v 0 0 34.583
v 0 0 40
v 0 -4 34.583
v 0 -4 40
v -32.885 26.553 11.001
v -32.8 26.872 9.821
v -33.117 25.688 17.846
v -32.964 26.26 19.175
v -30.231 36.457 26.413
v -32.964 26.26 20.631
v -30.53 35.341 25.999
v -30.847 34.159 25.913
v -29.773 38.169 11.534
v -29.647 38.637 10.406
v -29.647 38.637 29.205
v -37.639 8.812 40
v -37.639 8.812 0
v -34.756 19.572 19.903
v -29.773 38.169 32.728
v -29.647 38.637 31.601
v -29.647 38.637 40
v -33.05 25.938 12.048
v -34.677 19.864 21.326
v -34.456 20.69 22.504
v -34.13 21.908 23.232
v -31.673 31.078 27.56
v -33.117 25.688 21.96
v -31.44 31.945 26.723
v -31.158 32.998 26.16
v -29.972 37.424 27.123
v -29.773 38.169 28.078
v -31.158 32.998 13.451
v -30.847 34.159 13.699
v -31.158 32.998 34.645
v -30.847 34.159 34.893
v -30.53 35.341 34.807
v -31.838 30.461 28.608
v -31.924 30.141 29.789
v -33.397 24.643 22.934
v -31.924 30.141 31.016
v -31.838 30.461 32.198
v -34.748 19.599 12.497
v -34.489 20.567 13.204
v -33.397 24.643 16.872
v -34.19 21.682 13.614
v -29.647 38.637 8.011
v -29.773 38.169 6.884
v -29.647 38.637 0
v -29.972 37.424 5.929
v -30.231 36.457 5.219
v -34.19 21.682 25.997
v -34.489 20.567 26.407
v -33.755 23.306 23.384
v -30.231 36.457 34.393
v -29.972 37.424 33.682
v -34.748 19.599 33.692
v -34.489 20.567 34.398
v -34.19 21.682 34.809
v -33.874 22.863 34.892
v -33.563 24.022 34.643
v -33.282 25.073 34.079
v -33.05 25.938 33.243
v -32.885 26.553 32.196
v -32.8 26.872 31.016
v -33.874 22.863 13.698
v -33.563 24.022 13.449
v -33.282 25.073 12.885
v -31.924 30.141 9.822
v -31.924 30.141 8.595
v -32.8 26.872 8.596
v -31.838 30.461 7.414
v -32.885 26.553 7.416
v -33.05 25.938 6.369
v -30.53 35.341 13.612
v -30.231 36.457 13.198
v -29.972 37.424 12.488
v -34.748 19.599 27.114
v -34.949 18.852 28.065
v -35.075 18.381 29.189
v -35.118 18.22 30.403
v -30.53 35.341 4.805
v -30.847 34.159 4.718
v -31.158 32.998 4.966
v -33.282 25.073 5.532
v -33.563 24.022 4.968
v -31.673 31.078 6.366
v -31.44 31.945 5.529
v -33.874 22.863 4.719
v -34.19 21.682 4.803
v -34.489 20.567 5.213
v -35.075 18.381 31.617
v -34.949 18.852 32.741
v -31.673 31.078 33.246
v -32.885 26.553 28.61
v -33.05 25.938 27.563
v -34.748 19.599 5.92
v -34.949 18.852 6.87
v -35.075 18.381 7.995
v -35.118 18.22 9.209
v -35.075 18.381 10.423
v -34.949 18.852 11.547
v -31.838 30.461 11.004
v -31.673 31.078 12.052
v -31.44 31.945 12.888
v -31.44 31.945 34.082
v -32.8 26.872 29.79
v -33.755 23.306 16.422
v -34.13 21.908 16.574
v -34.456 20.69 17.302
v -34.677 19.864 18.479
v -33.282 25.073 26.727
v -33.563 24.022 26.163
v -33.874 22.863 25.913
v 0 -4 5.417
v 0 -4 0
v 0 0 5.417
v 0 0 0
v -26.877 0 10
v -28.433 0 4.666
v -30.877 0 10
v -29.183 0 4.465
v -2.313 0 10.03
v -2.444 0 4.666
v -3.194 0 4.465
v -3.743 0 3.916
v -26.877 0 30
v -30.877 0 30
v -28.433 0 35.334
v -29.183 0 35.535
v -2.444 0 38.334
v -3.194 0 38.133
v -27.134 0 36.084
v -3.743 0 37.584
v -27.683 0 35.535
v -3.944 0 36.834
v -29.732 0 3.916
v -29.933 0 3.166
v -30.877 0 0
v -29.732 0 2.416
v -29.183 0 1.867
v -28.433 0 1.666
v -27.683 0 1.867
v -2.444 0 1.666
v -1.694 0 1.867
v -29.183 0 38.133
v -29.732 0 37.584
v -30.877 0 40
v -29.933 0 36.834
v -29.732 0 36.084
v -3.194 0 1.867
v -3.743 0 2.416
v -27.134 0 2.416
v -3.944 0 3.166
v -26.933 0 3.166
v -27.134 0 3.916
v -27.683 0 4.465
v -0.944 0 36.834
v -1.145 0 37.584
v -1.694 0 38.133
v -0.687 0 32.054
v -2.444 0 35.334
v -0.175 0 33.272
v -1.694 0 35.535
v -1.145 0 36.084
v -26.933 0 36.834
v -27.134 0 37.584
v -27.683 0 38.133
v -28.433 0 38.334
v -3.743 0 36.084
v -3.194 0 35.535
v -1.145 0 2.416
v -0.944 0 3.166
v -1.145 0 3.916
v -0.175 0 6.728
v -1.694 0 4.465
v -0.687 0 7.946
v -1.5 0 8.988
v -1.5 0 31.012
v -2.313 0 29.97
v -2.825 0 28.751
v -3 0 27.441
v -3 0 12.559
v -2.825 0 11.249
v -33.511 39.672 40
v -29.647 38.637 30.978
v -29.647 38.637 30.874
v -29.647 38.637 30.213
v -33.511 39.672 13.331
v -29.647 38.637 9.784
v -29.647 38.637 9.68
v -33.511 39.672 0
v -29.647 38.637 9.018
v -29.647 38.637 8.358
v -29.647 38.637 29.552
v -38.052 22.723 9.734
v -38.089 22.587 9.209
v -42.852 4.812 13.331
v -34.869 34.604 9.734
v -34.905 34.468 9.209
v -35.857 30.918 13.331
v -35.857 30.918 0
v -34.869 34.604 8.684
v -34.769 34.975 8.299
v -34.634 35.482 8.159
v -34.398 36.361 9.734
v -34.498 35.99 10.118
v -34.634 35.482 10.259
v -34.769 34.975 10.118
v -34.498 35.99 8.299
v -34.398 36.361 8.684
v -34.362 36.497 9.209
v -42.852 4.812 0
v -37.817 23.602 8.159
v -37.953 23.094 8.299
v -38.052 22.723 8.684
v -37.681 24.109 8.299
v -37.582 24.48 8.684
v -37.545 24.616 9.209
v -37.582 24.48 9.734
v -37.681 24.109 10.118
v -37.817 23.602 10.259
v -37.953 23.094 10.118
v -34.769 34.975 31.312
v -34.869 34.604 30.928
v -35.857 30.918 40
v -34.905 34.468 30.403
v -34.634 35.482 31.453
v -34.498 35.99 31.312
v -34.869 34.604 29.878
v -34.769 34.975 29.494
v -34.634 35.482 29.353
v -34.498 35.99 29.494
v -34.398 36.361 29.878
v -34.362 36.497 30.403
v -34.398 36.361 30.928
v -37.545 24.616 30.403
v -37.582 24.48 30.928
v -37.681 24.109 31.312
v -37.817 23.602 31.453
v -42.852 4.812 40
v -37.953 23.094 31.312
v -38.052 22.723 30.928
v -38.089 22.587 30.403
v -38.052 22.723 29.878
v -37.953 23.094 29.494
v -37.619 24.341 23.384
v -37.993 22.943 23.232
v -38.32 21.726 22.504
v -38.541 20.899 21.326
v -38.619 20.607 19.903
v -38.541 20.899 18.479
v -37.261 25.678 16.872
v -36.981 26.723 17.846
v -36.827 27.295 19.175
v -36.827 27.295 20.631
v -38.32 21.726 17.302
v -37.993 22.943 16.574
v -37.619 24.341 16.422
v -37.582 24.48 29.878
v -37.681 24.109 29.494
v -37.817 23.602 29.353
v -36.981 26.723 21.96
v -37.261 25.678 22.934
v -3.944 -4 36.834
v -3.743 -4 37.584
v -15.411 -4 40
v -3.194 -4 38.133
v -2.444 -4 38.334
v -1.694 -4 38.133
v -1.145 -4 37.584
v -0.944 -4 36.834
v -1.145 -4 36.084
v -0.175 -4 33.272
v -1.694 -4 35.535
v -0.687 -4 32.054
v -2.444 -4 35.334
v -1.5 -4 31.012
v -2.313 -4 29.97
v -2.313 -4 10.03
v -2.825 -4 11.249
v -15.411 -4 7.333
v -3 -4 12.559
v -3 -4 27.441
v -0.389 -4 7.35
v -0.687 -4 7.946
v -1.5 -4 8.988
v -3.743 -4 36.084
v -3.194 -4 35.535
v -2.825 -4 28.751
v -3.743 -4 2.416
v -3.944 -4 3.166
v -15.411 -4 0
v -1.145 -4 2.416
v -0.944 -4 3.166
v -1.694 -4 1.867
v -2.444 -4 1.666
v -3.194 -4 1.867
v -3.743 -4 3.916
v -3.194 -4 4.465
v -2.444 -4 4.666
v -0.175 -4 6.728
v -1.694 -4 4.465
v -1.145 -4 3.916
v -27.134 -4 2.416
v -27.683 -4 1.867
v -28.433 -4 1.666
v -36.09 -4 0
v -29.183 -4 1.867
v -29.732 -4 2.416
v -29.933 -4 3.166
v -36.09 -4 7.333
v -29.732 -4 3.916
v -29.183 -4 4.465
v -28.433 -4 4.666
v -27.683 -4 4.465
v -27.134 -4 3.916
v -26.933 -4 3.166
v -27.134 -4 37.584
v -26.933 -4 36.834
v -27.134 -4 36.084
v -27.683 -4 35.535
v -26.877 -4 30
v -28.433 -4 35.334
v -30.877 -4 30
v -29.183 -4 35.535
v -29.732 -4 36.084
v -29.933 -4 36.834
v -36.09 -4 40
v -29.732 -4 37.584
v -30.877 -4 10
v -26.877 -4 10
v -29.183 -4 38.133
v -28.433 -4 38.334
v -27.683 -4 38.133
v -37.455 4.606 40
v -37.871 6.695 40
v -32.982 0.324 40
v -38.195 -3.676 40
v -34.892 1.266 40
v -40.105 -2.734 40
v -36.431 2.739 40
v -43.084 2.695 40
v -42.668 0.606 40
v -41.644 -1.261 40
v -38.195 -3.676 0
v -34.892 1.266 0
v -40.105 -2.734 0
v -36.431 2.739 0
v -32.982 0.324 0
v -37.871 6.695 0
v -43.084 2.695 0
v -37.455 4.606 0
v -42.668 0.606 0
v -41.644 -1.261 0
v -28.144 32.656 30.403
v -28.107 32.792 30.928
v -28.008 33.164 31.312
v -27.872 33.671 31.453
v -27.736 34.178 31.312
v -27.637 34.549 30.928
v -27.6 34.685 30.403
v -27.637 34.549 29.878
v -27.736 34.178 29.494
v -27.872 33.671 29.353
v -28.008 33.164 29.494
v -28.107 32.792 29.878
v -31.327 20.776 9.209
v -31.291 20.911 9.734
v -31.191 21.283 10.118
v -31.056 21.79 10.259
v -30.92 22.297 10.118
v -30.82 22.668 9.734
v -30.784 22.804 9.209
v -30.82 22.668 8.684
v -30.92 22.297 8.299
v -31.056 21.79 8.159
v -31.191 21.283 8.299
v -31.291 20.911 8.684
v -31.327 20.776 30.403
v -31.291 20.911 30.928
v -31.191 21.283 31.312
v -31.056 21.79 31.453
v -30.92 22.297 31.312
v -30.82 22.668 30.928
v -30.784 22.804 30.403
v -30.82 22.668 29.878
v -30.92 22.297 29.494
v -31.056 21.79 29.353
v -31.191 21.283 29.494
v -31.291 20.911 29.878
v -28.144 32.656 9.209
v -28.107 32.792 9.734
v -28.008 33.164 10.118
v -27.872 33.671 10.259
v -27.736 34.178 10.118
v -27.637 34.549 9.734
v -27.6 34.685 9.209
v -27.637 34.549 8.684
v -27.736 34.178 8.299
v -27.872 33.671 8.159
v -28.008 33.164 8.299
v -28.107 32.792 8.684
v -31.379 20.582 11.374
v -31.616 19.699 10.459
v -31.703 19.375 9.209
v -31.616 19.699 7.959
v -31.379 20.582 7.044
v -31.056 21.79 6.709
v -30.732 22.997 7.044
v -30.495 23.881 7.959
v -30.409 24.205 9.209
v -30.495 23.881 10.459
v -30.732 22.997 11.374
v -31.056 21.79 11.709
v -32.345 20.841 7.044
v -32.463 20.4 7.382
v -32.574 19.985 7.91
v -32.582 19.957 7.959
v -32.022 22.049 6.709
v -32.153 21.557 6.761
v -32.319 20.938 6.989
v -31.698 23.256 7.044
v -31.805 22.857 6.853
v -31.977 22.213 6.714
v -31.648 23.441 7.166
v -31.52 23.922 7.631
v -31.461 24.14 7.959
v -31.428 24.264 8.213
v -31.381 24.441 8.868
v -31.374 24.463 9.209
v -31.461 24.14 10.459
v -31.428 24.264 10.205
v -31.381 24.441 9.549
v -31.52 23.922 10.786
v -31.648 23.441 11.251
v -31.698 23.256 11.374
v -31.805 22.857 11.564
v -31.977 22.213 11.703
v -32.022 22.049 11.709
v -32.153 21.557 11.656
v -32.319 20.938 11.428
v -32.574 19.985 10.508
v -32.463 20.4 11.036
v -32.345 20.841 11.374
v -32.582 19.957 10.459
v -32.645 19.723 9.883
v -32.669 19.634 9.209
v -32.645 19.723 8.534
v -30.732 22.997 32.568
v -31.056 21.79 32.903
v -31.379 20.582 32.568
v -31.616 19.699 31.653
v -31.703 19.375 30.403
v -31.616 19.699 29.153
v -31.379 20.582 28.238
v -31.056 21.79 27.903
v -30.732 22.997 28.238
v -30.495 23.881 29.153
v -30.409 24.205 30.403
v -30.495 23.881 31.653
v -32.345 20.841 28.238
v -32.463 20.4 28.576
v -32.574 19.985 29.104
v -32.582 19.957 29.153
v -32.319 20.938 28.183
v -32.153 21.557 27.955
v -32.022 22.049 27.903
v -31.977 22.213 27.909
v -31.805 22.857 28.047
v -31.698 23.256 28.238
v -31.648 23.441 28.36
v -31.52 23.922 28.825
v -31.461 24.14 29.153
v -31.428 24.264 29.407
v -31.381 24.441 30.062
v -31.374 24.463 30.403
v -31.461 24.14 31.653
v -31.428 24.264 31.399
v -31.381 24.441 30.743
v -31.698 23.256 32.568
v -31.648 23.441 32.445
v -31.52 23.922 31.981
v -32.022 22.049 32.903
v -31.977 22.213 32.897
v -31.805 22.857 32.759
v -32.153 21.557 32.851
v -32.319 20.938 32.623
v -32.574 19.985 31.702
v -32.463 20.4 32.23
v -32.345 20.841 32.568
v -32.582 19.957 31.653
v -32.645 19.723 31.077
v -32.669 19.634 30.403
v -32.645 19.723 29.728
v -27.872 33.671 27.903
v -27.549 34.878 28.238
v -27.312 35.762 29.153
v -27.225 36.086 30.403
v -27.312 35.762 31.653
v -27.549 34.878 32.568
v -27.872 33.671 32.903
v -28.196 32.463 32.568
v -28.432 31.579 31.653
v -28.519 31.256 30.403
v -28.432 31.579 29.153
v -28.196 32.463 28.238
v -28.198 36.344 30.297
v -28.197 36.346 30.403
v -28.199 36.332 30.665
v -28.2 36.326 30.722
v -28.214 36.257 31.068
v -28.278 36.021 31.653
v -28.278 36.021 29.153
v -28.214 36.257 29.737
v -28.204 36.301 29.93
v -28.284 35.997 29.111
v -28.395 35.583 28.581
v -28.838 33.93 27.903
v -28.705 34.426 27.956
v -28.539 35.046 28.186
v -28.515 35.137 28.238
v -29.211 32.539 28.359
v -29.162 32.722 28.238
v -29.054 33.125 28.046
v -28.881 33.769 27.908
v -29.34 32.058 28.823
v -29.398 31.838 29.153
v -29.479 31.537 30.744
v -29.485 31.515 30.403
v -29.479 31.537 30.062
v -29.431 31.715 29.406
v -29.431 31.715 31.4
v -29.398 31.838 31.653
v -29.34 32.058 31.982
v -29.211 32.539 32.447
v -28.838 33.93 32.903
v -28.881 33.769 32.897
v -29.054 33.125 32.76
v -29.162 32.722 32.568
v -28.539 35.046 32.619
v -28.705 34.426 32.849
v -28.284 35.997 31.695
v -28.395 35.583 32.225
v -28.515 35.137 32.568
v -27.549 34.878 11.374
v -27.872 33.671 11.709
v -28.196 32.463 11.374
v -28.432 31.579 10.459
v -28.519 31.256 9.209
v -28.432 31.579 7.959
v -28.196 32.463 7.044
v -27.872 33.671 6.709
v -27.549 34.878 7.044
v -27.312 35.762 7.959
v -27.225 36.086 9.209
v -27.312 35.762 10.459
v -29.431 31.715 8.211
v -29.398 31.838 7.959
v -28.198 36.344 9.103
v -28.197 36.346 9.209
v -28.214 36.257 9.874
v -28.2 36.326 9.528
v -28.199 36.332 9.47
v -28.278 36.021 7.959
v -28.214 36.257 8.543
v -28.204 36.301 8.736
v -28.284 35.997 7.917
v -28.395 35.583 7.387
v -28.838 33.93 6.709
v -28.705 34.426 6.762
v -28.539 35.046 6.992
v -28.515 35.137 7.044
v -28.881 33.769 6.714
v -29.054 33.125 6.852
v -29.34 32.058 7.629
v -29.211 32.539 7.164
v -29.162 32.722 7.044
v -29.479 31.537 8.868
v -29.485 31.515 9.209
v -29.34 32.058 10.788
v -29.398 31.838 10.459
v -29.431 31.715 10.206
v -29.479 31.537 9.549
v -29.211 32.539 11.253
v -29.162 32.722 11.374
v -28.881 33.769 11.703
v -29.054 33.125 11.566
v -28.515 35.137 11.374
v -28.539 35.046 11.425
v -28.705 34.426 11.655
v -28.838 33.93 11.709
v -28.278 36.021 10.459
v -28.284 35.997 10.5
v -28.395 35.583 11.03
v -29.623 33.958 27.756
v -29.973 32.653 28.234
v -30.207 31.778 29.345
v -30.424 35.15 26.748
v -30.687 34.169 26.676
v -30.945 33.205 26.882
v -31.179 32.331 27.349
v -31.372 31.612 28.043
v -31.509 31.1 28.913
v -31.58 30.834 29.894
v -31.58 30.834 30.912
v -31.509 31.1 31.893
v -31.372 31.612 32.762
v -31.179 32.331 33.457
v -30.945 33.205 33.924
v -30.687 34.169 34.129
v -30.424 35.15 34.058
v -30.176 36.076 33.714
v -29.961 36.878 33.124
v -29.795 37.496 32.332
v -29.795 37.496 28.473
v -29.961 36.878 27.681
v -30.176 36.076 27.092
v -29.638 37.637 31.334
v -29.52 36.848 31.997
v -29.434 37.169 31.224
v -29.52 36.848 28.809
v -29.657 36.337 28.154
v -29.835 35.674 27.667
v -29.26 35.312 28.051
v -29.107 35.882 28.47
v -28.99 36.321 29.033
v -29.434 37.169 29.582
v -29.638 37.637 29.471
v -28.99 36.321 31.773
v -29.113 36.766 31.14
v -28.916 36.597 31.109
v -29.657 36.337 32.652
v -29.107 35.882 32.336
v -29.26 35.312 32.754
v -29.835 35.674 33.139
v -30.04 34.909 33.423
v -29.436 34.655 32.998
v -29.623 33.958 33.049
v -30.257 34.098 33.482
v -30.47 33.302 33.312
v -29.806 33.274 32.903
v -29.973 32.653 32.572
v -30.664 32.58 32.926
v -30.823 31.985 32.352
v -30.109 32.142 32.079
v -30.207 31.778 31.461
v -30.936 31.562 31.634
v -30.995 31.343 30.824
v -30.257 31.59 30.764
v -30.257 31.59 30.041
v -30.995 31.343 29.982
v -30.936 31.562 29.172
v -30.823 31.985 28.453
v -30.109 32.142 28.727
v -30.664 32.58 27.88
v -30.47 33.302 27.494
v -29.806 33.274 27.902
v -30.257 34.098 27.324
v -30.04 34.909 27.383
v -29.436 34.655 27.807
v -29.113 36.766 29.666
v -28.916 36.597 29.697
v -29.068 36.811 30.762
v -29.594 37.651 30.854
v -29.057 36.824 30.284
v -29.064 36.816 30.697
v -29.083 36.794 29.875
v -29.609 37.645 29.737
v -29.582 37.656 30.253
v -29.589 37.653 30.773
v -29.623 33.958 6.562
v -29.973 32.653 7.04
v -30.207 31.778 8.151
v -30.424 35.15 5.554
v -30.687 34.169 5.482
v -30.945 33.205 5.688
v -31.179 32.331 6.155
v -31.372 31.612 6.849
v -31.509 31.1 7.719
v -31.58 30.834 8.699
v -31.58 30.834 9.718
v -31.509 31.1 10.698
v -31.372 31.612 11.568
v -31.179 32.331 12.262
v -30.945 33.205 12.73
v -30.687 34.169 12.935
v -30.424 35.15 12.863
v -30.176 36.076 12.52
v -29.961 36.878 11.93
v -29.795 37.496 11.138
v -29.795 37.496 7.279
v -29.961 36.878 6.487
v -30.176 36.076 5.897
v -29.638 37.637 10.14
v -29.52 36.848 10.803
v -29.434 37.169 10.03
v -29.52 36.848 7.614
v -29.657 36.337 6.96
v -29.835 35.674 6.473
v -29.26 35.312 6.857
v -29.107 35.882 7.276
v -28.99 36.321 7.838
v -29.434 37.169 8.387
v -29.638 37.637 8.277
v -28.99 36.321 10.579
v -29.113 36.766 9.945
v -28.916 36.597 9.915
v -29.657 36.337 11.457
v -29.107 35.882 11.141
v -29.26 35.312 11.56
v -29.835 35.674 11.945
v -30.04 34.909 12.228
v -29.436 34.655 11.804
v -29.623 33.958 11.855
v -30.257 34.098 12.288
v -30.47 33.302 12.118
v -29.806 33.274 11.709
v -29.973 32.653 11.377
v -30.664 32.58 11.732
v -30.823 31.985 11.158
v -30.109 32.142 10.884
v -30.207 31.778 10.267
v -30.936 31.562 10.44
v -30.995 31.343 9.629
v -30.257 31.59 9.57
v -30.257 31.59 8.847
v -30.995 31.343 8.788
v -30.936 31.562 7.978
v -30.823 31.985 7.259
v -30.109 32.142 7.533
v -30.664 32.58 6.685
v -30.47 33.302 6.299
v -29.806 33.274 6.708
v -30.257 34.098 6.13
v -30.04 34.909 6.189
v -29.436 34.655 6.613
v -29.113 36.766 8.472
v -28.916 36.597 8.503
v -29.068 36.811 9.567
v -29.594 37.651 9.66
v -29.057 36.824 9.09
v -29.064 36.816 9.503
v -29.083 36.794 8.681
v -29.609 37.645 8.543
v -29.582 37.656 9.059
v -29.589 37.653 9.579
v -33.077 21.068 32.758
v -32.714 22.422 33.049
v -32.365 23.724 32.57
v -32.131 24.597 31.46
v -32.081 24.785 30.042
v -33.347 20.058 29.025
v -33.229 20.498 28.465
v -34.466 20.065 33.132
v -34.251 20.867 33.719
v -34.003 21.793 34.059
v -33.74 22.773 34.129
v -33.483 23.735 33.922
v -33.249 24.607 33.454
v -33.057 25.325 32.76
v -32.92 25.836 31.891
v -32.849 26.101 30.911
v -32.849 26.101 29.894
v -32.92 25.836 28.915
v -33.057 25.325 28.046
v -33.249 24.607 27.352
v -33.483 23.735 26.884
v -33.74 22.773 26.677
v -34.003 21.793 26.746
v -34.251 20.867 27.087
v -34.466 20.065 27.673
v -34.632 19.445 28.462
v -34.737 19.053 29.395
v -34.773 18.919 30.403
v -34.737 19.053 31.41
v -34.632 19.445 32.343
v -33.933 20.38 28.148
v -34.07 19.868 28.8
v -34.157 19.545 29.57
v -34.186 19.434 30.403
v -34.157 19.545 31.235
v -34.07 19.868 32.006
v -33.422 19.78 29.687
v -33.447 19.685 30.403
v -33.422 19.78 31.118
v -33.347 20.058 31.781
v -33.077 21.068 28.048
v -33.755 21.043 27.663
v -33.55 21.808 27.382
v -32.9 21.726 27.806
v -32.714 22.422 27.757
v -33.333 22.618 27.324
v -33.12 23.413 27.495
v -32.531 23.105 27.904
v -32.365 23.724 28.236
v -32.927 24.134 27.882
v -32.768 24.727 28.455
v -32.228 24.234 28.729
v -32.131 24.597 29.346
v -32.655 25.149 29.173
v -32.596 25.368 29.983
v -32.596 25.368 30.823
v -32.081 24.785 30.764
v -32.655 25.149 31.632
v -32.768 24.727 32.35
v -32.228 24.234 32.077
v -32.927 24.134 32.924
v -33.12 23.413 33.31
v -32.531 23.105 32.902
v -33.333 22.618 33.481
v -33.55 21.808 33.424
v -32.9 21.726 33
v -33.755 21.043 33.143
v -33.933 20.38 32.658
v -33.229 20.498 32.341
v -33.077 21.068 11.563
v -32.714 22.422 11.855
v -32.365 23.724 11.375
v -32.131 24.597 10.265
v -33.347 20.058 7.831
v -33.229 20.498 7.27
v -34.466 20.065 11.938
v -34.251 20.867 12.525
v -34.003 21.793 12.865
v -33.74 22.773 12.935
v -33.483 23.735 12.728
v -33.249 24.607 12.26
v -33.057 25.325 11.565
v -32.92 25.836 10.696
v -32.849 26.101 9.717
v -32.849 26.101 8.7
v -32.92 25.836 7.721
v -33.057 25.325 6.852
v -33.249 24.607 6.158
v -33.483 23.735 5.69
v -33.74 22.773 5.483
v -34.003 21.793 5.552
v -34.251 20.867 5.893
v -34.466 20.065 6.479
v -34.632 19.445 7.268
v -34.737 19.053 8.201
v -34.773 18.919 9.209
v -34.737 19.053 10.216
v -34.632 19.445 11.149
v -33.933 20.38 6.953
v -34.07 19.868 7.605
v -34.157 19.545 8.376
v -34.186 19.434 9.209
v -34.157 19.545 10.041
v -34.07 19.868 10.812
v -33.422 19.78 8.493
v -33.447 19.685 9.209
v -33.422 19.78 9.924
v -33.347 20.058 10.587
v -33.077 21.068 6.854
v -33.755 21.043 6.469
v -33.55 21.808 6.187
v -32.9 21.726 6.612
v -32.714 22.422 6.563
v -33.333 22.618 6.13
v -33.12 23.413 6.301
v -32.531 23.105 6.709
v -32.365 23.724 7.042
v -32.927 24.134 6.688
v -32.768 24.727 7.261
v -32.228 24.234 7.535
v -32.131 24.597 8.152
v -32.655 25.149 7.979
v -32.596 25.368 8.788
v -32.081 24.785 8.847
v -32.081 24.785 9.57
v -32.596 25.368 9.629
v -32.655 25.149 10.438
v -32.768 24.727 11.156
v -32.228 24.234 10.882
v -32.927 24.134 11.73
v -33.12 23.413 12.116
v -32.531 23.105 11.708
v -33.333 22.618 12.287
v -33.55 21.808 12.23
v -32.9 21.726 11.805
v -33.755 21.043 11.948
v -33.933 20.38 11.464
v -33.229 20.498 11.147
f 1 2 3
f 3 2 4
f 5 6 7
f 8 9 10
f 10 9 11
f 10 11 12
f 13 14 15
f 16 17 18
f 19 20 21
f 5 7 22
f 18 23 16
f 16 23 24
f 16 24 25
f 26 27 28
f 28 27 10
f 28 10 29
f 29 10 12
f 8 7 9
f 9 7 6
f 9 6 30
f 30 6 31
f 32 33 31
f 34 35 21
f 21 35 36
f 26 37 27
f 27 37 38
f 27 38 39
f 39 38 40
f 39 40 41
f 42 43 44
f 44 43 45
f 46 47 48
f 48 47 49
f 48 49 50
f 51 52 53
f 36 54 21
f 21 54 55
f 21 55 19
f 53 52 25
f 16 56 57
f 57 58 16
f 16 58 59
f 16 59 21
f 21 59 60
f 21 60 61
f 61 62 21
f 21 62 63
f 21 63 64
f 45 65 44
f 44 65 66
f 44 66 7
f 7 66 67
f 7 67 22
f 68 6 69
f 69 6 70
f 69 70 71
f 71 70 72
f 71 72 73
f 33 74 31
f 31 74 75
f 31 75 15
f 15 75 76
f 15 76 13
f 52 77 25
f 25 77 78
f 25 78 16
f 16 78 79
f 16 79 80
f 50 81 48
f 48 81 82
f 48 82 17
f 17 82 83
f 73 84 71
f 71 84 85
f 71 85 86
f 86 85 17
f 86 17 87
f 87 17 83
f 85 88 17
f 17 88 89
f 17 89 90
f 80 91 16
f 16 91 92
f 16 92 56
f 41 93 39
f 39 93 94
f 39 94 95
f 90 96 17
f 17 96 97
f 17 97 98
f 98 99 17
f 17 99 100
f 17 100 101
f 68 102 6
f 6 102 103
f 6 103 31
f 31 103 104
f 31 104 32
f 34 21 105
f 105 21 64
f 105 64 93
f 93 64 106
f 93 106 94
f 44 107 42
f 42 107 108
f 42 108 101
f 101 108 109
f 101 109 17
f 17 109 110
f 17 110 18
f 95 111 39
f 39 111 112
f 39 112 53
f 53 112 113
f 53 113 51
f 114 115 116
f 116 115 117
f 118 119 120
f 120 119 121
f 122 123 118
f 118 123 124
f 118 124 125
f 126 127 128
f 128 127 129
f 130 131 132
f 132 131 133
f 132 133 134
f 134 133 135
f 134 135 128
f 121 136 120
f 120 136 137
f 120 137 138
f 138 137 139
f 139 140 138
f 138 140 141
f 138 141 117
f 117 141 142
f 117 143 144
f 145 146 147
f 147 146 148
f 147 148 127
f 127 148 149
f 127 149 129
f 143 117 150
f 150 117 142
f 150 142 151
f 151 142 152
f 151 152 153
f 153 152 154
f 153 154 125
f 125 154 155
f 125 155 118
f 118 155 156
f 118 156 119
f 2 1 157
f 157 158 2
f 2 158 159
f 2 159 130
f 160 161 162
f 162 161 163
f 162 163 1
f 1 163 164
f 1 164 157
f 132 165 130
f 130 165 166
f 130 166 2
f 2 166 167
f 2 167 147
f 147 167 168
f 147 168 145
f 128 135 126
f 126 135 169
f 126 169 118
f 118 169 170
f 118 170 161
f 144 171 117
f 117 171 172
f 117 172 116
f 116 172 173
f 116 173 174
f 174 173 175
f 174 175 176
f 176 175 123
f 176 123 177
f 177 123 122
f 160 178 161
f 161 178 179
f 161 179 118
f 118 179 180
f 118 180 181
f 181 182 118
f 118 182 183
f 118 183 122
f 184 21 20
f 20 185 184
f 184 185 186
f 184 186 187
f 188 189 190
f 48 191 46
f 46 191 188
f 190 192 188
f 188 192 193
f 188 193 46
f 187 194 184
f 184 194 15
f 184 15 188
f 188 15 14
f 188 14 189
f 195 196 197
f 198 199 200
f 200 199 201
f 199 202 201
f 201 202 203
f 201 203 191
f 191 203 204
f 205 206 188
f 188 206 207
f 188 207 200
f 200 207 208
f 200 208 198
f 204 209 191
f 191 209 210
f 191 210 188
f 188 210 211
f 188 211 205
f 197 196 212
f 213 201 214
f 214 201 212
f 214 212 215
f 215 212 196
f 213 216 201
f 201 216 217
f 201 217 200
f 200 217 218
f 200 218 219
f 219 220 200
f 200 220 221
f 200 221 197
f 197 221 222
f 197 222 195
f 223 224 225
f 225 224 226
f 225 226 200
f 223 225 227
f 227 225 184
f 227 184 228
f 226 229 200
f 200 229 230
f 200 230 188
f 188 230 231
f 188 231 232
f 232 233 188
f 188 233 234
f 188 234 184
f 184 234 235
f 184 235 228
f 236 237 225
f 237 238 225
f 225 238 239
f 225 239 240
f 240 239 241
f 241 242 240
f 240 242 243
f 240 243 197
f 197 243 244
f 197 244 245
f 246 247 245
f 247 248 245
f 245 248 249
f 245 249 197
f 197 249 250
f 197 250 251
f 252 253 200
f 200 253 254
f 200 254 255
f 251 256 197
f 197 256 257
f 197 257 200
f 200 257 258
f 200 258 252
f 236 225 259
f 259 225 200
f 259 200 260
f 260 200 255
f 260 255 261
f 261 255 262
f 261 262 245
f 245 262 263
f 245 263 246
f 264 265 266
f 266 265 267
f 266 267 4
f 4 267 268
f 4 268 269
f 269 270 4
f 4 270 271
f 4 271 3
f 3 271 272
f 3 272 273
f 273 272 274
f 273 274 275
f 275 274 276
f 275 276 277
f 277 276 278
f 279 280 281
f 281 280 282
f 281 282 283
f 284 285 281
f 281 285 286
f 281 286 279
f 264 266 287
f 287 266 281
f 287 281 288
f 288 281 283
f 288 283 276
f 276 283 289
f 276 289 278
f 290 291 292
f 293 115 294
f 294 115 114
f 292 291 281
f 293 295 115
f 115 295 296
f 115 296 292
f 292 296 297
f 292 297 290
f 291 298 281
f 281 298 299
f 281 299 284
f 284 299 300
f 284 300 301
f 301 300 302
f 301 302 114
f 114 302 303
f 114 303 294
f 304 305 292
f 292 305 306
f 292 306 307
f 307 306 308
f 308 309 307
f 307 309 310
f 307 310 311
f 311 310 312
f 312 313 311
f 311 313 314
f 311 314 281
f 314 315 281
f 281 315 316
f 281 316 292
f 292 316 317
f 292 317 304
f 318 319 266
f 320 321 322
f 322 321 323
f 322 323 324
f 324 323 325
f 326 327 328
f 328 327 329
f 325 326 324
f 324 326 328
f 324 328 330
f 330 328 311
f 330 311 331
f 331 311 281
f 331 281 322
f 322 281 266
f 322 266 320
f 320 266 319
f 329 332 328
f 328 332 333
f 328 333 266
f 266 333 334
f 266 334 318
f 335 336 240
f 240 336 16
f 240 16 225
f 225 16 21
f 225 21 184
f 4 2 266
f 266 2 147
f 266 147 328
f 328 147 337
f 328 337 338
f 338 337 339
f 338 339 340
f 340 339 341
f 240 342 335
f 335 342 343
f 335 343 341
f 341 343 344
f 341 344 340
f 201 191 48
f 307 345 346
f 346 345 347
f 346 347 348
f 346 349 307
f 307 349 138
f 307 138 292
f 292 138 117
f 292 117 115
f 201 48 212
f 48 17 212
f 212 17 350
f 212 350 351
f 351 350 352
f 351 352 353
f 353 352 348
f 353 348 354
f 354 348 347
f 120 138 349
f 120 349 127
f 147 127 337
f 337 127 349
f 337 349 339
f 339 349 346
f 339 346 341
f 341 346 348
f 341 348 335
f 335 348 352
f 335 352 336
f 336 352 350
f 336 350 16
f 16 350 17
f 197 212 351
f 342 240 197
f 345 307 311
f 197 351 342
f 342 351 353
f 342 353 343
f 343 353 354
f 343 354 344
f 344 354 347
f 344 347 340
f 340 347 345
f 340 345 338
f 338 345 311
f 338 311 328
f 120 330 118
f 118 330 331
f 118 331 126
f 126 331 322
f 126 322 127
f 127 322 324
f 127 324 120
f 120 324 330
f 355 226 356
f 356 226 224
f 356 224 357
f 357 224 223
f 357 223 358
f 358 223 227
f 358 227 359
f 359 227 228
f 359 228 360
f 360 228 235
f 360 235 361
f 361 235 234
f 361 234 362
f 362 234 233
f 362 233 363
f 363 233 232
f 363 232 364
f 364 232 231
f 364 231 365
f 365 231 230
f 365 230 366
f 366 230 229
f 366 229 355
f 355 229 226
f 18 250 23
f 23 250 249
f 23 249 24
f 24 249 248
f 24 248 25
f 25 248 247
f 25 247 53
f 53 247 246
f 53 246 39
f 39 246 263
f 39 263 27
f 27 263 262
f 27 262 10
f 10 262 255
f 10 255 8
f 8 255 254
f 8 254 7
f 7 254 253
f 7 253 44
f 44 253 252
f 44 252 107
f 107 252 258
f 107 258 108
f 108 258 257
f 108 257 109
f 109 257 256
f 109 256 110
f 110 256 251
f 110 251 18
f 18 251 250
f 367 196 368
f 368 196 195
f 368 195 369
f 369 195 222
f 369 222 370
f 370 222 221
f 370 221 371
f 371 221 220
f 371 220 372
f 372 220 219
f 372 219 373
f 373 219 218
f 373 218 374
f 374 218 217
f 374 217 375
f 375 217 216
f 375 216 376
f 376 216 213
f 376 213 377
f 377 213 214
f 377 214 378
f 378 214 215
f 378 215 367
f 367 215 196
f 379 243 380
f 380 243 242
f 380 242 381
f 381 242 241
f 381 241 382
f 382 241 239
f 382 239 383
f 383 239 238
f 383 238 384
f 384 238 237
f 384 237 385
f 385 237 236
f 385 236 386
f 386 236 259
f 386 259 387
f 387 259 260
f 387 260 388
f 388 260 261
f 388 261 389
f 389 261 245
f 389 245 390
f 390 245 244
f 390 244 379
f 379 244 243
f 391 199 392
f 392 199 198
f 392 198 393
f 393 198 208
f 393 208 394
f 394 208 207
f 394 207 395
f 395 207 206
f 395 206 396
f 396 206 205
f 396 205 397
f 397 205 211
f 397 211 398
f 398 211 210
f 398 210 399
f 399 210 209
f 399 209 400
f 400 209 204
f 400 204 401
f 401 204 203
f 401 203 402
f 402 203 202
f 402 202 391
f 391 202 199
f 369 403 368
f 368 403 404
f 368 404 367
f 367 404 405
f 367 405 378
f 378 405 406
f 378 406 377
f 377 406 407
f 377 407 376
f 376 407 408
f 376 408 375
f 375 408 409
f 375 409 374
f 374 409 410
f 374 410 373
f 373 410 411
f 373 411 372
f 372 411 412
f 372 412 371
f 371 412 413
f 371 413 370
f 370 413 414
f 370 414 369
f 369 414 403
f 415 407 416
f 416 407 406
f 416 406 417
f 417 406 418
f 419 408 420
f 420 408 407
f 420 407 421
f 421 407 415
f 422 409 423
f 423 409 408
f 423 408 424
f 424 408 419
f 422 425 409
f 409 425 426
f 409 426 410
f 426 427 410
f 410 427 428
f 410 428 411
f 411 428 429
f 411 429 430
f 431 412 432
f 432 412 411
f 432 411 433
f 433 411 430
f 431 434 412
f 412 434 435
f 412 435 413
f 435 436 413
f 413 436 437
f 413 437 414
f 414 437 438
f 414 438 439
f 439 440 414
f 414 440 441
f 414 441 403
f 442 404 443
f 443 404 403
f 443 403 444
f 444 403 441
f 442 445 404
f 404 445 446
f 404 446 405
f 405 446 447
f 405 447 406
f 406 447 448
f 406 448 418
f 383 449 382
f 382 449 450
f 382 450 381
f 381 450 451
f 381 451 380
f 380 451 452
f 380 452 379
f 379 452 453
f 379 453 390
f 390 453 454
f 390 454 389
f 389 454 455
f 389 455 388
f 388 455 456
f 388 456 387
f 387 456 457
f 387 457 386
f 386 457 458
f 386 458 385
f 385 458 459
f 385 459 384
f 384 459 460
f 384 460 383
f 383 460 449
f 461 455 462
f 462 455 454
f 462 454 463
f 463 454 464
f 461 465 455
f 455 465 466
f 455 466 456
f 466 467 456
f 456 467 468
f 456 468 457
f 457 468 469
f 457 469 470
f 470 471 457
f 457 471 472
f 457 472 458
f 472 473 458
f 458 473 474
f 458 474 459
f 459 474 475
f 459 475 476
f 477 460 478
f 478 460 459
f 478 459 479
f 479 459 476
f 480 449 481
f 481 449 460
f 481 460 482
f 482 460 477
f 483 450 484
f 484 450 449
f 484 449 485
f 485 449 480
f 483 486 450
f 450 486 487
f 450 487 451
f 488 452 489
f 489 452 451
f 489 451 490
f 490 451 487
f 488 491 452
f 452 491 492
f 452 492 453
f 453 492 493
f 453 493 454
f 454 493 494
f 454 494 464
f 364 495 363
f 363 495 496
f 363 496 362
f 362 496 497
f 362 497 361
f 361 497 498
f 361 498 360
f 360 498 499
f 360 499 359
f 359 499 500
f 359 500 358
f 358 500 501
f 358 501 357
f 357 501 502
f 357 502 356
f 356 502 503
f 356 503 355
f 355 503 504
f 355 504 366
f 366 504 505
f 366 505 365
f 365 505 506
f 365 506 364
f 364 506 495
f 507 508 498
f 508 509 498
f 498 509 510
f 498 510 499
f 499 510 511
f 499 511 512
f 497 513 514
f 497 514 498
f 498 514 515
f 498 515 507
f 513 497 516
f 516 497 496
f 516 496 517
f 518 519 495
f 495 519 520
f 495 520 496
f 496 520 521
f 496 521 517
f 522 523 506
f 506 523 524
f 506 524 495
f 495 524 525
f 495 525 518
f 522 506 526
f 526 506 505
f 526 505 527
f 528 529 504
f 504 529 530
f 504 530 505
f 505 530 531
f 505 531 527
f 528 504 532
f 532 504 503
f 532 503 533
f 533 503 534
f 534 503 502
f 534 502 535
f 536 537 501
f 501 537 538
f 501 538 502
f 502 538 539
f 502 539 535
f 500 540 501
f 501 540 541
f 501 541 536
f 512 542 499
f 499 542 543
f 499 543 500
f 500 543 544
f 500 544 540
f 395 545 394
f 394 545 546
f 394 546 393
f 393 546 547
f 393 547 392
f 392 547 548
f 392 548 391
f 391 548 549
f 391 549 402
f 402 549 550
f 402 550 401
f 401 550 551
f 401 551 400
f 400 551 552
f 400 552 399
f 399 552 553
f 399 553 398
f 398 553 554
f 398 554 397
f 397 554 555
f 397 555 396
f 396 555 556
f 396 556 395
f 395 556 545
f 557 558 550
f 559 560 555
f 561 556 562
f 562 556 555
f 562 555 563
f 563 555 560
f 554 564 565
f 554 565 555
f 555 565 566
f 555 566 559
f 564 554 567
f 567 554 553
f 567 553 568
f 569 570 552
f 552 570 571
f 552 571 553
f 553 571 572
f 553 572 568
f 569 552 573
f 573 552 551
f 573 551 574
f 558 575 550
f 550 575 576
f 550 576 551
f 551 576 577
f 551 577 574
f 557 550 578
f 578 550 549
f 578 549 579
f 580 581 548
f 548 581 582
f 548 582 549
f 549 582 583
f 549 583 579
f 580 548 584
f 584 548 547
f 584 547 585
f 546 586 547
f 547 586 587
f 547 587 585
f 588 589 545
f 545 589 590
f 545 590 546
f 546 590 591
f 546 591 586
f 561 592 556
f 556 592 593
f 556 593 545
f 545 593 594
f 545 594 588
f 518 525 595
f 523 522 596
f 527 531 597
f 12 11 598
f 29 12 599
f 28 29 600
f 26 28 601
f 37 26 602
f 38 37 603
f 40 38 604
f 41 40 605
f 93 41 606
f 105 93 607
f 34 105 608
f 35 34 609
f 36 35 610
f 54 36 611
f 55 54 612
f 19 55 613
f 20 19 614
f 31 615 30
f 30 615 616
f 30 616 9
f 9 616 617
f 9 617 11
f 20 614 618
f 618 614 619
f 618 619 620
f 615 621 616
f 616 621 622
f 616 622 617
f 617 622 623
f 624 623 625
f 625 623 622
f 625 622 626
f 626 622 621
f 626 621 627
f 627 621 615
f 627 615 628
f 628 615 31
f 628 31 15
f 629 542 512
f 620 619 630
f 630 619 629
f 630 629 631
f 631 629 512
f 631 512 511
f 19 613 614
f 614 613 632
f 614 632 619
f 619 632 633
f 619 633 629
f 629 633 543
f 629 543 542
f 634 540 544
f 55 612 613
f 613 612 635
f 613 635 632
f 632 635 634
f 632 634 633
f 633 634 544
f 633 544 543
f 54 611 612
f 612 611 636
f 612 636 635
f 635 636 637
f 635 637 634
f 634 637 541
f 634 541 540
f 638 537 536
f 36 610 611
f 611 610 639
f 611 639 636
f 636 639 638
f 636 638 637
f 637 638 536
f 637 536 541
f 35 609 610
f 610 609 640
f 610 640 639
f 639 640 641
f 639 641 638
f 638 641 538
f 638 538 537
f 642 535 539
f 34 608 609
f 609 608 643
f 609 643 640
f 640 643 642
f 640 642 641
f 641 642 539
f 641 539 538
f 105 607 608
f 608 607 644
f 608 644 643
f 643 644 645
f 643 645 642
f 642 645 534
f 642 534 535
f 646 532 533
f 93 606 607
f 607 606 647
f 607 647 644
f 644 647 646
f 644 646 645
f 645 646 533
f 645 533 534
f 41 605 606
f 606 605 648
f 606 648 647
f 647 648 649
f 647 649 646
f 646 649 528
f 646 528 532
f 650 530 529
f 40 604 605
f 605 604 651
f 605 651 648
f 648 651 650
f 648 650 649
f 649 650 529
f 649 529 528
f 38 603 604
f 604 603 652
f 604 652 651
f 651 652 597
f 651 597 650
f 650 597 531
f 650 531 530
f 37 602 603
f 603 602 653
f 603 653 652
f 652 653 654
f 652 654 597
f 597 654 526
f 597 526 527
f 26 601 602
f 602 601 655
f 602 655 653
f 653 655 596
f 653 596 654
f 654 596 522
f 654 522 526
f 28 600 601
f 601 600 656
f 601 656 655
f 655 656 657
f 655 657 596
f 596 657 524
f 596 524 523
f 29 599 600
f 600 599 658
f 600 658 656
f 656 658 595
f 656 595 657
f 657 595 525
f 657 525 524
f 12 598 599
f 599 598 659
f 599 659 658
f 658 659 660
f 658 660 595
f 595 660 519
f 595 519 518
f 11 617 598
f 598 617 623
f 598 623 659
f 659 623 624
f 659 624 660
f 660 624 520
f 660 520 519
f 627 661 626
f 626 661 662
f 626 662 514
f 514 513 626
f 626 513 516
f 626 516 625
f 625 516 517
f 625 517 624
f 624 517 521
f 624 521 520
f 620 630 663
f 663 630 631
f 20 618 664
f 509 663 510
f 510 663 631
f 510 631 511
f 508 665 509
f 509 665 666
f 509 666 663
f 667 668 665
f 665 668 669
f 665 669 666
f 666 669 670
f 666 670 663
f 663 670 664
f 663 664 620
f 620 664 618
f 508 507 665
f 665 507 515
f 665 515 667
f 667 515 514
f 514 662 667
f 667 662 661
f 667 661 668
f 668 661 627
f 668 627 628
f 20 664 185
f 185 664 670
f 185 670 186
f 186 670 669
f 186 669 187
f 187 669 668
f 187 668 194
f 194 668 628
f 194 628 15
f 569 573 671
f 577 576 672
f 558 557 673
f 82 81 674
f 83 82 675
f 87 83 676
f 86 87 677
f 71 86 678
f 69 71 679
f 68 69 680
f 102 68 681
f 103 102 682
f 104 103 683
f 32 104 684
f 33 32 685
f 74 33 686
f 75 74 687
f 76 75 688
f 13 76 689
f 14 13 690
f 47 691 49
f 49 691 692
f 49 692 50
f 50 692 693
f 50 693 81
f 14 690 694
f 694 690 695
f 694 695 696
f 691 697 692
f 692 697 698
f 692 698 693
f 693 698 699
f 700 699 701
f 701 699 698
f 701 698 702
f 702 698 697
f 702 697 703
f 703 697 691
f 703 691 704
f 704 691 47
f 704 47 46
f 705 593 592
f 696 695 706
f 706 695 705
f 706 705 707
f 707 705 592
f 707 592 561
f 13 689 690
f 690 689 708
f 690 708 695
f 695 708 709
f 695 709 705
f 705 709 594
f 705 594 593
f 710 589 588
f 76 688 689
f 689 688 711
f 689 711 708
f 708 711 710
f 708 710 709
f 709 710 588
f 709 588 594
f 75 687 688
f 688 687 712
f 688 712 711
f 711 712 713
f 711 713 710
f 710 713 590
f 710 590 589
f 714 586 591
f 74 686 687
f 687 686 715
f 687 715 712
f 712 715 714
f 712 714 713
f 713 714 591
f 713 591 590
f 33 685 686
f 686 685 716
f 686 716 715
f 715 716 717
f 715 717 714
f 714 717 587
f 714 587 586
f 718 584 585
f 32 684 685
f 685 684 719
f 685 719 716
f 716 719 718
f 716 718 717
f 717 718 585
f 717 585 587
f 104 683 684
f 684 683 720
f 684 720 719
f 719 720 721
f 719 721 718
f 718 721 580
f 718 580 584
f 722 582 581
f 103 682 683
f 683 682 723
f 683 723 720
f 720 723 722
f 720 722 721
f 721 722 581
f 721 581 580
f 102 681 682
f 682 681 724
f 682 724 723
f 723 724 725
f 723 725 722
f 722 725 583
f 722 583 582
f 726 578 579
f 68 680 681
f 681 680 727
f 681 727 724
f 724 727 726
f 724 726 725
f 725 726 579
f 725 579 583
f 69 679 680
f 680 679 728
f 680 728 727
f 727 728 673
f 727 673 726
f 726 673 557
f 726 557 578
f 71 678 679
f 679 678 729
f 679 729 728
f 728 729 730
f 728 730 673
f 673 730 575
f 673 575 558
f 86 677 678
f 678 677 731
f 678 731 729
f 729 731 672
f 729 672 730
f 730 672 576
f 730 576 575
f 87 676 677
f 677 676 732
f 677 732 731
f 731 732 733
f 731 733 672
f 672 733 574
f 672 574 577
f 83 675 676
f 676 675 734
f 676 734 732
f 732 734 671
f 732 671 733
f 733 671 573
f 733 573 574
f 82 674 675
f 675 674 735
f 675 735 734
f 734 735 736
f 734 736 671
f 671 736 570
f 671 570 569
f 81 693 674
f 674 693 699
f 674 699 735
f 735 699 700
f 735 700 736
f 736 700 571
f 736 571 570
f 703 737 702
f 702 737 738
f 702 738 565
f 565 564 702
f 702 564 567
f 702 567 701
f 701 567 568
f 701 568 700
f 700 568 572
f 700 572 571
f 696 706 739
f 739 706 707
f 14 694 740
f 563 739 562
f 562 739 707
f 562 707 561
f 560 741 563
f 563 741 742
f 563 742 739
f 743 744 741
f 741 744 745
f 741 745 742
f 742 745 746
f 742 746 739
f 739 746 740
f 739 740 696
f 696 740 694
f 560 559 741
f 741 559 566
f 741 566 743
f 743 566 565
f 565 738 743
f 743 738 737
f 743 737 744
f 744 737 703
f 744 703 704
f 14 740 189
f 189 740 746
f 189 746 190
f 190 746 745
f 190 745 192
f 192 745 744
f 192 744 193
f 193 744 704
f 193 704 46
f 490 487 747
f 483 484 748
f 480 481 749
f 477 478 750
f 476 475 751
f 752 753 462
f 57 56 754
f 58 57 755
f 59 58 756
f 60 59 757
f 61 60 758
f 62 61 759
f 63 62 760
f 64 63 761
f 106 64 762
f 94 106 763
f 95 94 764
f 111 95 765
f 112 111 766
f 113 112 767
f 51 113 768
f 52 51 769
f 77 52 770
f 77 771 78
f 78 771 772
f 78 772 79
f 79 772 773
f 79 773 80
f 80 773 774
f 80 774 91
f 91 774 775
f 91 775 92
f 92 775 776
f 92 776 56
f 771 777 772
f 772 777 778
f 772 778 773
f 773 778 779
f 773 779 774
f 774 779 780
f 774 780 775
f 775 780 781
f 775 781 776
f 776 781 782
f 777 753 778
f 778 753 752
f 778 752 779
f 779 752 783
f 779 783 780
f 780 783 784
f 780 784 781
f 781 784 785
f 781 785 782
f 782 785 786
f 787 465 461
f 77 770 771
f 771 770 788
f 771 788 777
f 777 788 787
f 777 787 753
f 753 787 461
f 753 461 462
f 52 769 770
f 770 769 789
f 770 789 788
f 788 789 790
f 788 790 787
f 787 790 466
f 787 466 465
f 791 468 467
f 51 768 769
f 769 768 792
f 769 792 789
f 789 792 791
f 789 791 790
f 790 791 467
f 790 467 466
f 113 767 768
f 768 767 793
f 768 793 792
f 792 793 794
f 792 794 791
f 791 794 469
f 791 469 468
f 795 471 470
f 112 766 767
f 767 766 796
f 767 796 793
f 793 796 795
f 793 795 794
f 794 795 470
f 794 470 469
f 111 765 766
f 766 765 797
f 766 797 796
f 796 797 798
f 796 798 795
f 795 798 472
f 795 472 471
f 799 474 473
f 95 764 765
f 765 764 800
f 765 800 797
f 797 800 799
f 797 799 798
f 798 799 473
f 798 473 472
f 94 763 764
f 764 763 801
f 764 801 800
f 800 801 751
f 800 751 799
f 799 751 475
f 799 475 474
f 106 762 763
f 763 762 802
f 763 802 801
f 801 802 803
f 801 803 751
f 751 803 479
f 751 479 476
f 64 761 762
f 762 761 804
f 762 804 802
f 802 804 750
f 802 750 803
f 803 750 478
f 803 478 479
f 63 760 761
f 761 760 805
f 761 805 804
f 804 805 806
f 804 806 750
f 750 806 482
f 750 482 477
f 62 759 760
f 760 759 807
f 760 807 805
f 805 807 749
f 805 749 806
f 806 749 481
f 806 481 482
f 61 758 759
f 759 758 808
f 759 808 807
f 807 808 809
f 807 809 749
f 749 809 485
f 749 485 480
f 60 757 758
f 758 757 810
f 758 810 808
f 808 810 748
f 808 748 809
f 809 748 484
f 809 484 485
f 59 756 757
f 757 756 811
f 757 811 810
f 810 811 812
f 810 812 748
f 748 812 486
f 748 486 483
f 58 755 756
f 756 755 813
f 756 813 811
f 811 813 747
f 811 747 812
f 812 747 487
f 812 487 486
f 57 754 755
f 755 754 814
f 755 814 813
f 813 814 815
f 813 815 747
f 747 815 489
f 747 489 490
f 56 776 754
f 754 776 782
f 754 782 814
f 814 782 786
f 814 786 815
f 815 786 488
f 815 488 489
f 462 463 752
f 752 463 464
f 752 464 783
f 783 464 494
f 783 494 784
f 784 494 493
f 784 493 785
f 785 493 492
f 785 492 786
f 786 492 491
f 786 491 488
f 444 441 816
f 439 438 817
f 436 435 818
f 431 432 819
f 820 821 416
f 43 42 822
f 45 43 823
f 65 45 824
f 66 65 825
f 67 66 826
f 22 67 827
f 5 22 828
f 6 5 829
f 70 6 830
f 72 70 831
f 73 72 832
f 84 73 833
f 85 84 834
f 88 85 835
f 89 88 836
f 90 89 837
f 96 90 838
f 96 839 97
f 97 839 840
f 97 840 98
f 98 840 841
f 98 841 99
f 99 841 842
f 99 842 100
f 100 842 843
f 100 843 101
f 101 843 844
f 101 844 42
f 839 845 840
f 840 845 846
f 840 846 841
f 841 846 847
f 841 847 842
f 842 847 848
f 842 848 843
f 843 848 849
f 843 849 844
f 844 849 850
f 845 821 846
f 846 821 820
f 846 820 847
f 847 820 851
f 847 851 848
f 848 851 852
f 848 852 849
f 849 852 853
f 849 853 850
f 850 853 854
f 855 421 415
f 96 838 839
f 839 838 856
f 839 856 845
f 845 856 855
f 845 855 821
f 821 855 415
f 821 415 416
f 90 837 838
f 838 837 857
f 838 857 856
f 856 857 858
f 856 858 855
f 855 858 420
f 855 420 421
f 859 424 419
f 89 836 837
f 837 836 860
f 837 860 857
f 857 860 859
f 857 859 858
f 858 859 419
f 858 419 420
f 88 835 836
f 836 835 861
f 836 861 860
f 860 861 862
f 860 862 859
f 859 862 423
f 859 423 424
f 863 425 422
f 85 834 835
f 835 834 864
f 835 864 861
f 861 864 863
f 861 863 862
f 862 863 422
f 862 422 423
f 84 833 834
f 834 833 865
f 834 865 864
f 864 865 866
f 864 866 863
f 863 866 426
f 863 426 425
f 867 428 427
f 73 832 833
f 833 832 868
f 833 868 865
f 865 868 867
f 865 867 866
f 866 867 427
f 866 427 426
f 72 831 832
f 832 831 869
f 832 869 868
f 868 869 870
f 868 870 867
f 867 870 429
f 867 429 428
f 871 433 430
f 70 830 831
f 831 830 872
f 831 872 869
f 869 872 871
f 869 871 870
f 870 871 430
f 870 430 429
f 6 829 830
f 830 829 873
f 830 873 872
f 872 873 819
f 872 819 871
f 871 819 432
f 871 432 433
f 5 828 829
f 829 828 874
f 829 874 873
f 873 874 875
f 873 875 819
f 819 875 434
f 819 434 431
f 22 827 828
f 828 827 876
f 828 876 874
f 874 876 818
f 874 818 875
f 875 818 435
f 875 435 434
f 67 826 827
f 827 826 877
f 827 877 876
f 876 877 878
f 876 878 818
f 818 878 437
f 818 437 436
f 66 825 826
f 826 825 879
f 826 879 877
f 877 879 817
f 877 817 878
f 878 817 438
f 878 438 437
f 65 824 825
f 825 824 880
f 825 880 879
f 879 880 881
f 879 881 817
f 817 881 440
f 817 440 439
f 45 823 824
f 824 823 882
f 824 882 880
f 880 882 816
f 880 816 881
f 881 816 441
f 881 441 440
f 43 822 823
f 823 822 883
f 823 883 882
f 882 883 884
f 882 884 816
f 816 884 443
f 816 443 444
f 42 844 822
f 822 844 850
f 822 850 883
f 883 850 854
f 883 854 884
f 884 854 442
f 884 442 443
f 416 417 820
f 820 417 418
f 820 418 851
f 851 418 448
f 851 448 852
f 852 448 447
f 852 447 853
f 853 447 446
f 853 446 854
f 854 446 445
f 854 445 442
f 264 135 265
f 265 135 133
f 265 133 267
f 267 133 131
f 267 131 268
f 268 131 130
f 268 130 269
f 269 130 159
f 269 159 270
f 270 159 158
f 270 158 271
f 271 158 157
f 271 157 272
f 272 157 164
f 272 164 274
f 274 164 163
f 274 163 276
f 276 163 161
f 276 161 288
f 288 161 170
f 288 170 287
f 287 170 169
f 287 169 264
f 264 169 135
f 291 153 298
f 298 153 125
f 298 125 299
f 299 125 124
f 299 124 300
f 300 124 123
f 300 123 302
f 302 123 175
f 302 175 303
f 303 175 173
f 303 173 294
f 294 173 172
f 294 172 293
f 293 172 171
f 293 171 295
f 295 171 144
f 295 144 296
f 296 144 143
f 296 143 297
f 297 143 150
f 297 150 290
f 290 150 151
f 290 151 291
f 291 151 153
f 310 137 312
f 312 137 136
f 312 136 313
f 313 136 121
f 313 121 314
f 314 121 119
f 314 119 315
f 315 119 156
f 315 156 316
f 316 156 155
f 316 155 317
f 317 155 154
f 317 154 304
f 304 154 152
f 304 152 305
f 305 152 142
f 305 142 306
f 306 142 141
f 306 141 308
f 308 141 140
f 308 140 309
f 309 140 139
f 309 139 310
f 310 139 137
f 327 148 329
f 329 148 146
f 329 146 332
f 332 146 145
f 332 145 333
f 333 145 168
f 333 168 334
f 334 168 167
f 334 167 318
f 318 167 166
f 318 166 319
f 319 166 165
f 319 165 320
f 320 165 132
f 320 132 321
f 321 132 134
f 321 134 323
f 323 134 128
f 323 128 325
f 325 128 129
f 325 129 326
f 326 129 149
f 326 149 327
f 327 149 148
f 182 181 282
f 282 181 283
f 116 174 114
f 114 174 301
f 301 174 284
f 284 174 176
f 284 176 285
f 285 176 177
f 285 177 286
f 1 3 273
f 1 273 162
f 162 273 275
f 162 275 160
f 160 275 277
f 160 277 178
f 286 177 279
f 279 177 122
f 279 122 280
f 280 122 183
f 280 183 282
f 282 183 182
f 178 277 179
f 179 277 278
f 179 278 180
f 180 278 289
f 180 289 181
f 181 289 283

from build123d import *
from build123d.topology import SkipClean

# Parameters (mm, degrees)
ESTRUSIONE_ESTRUSIONE1_DEPTH = 40
RACCORDO1_R                  = 7
SCHIZZO2_W                   = 4
SCHIZZO2_H                   = 20
TAGLIO_ESTRUSIONE1_DEPTH     = 40
SCHIZZO3_R                   = 1.05
SCHIZZO3_R_2                 = 3.5
TAGLIO_ESTRUSIONE2_DEPTH     = 40
SCHIZZO4_R                   = 2.5
SCHIZZO4_R_2                 = 1.05
ESTRUSIONE_ESTRUSIONE2_DEPTH = 3
RACCORDO2_R                  = 2
SCHIZZO5_R                   = 1.5
TAGLIO_ESTRUSIONE3_DEPTH     = 17
TAGLIO_ESTRUSIONE4_DEPTH     = 10
RACCORDO3_R                  = 5
RACCORDO4_R                  = 5


with BuildPart() as part:
    # Schizzo1 → Estrusione-Estrusione1 (new body)
    with BuildSketch(Plane.XY):
        Polygon((0, 0), (-40, 0), (-29.647238196, 38.637033052), (-33.510941501, 39.672309232), (-45.212901491, -4), (0, -4), align=None)
    extrude(amount=ESTRUSIONE_ESTRUSIONE1_DEPTH)

    # Raccordo1
    raccordo1_edges = [part.edges().sort_by_distance(p)[0] for p in [
        (-45.212901491, -4, 20),
        (-40, 0, 20),
    ]]
    fillet(raccordo1_edges, radius=RACCORDO1_R)

    # Schizzo2 → Taglio-Estrusione1 (cut)
    with BuildSketch(Plane(origin=(0, 0, 0), x_dir=(1, 0, 0), z_dir=(0, 1, 0))):
        with Locations((-28.87742239, -20)):
            Rectangle(SCHIZZO2_W, SCHIZZO2_H)
    extrude(amount=-TAGLIO_ESTRUSIONE1_DEPTH, mode=Mode.SUBTRACT)

    # Schizzo3 → Taglio-Estrusione2 (cut)
    with BuildSketch(Plane(origin=(-41.184211381, 11.03527618, 0), x_dir=(0, 0, 1), z_dir=(-0.9659258262890673, 0.2588190451025247, 0))):
        with Locations(Location((30.402866557, 25.309568218, 0), (0, 0, 270))):
            Circle(SCHIZZO3_R)
        with Locations(Location((9.20859967, 25.309568218, 0), (0, 0, 270))):
            Circle(SCHIZZO3_R)
        with Locations(Location((30.402866557, 13.009568218, 0), (0, 0, 270))):
            Circle(SCHIZZO3_R)
        with Locations(Location((9.20859967, 13.009568218, 0), (0, 0, 270))):
            Circle(SCHIZZO3_R)
        with Locations(Location((19.902866557, 13.409568216, 0), (0, 0, 270))):
            Circle(SCHIZZO3_R_2)
    extrude(amount=-TAGLIO_ESTRUSIONE2_DEPTH, mode=Mode.SUBTRACT)

    # Schizzo4 → Estrusione-Estrusione2 (add)
    # profile 1 of 4: a face of its own
    with SkipClean():  # the faces are left unmerged after this step: merging them gives an invalid solid
        with BuildSketch(Plane(origin=(-37.320508076, 10, 0), x_dir=(0, 0, -1), z_dir=(0.9659258262890674, -0.2588190451025245, 0))):
            with Locations(Location((-9.20859967, 13.009568218, 0), (0, 0, 270))):
                Circle(SCHIZZO4_R)
            with Locations(Location((-9.20859967, 13.009568218, 0), (0, 0, 90))):
                Circle(SCHIZZO4_R_2, mode=Mode.SUBTRACT)
        # profile 2 of 4: a face of its own
        with BuildSketch(Plane(origin=(-37.320508076, 10, 0), x_dir=(0, 0, -1), z_dir=(0.9659258262890674, -0.2588190451025245, 0))):
            with Locations(Location((-30.402866557, 13.009568218, 0), (0, 0, 270))):
                Circle(SCHIZZO4_R)
            with Locations(Location((-30.402866557, 13.009568218, 0), (0, 0, 270))):
                Circle(SCHIZZO4_R_2, mode=Mode.SUBTRACT)
        # profile 3 of 4: a face of its own
        with BuildSketch(Plane(origin=(-37.320508076, 10, 0), x_dir=(0, 0, -1), z_dir=(0.9659258262890674, -0.2588190451025245, 0))):
            with Locations(Location((-30.402866557, 25.309568218, 0), (0, 0, 270))):
                Circle(SCHIZZO4_R)
            with Locations(Location((-30.402866557, 25.309568218, 0), (0, 0, 270))):
                Circle(SCHIZZO4_R_2, mode=Mode.SUBTRACT)
        # profile 4 of 4: a face of its own
        with BuildSketch(Plane(origin=(-37.320508076, 10, 0), x_dir=(0, 0, -1), z_dir=(0.9659258262890674, -0.2588190451025245, 0))):
            with Locations(Location((-9.20859967, 25.309568218, 0), (0, 0, 270))):
                Circle(SCHIZZO4_R)
            with Locations(Location((-9.20859967, 25.309568218, 0), (0, 0, 90))):
                Circle(SCHIZZO4_R_2, mode=Mode.SUBTRACT)
        extrude(amount=ESTRUSIONE_ESTRUSIONE2_DEPTH)
    add(part.part.scale(1), mode=Mode.REPLACE)  # the faces are merged on a copy

    # Raccordo2
    raccordo2_edges = [part.edges().sort_by_distance(p)[0] for p in [
        (-33.306336439, 24.981092497, 9.20859967),
        (-33.306336439, 24.981092497, 30.402866557),
        (-30.122862185, 36.86198016, 30.402866557),
        (-30.122862185, 36.86198016, 9.20859967),
    ]]
    fillet(raccordo2_edges, radius=RACCORDO2_R)

    # Schizzo5 → Taglio-Estrusione3 (cut)
    with BuildSketch(Plane(origin=(0, 0, 0), x_dir=(1, 0, 0), z_dir=(0, 1, 0))):
        with Locations(Location((-2.444220089, -36.8336475, 0), (0, 0, 180))):
            Circle(SCHIZZO5_R)
        with Locations(Location((-2.444220089, -3.1663525, 0), (0, 0, 180))):
            Circle(SCHIZZO5_R)
        with Locations(Location((-28.433202301, -3.1663525, 0), (0, 0, 180))):
            Circle(SCHIZZO5_R)
        with Locations(Location((-28.433202301, -36.8336475, 0), (0, 0, 180))):
            Circle(SCHIZZO5_R)
    extrude(amount=-TAGLIO_ESTRUSIONE3_DEPTH, mode=Mode.SUBTRACT)

    # Schizzo6 → Taglio-Estrusione4 (cut)
    with BuildSketch(Plane(origin=(0, 0, 0), x_dir=(1, 0, 0), z_dir=(0, 1, 0))):
        Polygon((0, -20), (0, -30), (-3, -30), (-3, -10), (0, -10), align=None)
    extrude(amount=-TAGLIO_ESTRUSIONE4_DEPTH, mode=Mode.SUBTRACT)

    # Raccordo3
    # the kernel refuses this fillet: 5 mm, written as the material it takes off along each edge
    with BuildSketch(Plane(origin=(0, 11.456439237, 10), x_dir=(0, 0, -1), z_dir=(0, -1, 0))) as raccordo3_piece_1:
        with BuildLine():
            CenterArc((4.582575695, -5), RACCORDO3_R, 90, 66.421821522)
            Line((0, -3), (-0.091651514, -2.96))
            ThreePointArc((-0.091651514, -2.96), (-0.1, -1.5), (-0.1, 0))
            Line((-0.1, 0), (0, 0.1))
            Line((0, 0.1), (4.582575695, 0.1))
            Line((4.582575695, 0.1), (4.582575695, 0))
        make_face()
    extrude(amount=26.912878475, mode=Mode.SUBTRACT)
    with BuildSketch(Plane(origin=(0, 11.456439237, 30), x_dir=(0, 0, 1), z_dir=(0, -1, 0))) as raccordo3_piece_2:
        with BuildLine():
            CenterArc((4.582575695, 5), RACCORDO3_R, 203.578178478, 66.421821522)
            Line((0, 3), (-0.091651514, 2.96))
            ThreePointArc((-0.091651514, 2.96), (-0.1, 1.5), (-0.1, 0))
            Line((-0.1, 0), (0, -0.1))
            Line((0, -0.1), (4.582575695, -0.1))
            Line((4.582575695, -0.1), (4.582575695, 0))
        make_face()
    extrude(amount=26.912878475, mode=Mode.SUBTRACT)

    # Raccordo4
    raccordo4_edges = [part.edges().sort_by_distance(p)[0] for p in [
        (-3, -2, 30),
        (-3, -2, 10),
    ]]
    fillet(raccordo4_edges, radius=RACCORDO4_R)


solid = part.part
